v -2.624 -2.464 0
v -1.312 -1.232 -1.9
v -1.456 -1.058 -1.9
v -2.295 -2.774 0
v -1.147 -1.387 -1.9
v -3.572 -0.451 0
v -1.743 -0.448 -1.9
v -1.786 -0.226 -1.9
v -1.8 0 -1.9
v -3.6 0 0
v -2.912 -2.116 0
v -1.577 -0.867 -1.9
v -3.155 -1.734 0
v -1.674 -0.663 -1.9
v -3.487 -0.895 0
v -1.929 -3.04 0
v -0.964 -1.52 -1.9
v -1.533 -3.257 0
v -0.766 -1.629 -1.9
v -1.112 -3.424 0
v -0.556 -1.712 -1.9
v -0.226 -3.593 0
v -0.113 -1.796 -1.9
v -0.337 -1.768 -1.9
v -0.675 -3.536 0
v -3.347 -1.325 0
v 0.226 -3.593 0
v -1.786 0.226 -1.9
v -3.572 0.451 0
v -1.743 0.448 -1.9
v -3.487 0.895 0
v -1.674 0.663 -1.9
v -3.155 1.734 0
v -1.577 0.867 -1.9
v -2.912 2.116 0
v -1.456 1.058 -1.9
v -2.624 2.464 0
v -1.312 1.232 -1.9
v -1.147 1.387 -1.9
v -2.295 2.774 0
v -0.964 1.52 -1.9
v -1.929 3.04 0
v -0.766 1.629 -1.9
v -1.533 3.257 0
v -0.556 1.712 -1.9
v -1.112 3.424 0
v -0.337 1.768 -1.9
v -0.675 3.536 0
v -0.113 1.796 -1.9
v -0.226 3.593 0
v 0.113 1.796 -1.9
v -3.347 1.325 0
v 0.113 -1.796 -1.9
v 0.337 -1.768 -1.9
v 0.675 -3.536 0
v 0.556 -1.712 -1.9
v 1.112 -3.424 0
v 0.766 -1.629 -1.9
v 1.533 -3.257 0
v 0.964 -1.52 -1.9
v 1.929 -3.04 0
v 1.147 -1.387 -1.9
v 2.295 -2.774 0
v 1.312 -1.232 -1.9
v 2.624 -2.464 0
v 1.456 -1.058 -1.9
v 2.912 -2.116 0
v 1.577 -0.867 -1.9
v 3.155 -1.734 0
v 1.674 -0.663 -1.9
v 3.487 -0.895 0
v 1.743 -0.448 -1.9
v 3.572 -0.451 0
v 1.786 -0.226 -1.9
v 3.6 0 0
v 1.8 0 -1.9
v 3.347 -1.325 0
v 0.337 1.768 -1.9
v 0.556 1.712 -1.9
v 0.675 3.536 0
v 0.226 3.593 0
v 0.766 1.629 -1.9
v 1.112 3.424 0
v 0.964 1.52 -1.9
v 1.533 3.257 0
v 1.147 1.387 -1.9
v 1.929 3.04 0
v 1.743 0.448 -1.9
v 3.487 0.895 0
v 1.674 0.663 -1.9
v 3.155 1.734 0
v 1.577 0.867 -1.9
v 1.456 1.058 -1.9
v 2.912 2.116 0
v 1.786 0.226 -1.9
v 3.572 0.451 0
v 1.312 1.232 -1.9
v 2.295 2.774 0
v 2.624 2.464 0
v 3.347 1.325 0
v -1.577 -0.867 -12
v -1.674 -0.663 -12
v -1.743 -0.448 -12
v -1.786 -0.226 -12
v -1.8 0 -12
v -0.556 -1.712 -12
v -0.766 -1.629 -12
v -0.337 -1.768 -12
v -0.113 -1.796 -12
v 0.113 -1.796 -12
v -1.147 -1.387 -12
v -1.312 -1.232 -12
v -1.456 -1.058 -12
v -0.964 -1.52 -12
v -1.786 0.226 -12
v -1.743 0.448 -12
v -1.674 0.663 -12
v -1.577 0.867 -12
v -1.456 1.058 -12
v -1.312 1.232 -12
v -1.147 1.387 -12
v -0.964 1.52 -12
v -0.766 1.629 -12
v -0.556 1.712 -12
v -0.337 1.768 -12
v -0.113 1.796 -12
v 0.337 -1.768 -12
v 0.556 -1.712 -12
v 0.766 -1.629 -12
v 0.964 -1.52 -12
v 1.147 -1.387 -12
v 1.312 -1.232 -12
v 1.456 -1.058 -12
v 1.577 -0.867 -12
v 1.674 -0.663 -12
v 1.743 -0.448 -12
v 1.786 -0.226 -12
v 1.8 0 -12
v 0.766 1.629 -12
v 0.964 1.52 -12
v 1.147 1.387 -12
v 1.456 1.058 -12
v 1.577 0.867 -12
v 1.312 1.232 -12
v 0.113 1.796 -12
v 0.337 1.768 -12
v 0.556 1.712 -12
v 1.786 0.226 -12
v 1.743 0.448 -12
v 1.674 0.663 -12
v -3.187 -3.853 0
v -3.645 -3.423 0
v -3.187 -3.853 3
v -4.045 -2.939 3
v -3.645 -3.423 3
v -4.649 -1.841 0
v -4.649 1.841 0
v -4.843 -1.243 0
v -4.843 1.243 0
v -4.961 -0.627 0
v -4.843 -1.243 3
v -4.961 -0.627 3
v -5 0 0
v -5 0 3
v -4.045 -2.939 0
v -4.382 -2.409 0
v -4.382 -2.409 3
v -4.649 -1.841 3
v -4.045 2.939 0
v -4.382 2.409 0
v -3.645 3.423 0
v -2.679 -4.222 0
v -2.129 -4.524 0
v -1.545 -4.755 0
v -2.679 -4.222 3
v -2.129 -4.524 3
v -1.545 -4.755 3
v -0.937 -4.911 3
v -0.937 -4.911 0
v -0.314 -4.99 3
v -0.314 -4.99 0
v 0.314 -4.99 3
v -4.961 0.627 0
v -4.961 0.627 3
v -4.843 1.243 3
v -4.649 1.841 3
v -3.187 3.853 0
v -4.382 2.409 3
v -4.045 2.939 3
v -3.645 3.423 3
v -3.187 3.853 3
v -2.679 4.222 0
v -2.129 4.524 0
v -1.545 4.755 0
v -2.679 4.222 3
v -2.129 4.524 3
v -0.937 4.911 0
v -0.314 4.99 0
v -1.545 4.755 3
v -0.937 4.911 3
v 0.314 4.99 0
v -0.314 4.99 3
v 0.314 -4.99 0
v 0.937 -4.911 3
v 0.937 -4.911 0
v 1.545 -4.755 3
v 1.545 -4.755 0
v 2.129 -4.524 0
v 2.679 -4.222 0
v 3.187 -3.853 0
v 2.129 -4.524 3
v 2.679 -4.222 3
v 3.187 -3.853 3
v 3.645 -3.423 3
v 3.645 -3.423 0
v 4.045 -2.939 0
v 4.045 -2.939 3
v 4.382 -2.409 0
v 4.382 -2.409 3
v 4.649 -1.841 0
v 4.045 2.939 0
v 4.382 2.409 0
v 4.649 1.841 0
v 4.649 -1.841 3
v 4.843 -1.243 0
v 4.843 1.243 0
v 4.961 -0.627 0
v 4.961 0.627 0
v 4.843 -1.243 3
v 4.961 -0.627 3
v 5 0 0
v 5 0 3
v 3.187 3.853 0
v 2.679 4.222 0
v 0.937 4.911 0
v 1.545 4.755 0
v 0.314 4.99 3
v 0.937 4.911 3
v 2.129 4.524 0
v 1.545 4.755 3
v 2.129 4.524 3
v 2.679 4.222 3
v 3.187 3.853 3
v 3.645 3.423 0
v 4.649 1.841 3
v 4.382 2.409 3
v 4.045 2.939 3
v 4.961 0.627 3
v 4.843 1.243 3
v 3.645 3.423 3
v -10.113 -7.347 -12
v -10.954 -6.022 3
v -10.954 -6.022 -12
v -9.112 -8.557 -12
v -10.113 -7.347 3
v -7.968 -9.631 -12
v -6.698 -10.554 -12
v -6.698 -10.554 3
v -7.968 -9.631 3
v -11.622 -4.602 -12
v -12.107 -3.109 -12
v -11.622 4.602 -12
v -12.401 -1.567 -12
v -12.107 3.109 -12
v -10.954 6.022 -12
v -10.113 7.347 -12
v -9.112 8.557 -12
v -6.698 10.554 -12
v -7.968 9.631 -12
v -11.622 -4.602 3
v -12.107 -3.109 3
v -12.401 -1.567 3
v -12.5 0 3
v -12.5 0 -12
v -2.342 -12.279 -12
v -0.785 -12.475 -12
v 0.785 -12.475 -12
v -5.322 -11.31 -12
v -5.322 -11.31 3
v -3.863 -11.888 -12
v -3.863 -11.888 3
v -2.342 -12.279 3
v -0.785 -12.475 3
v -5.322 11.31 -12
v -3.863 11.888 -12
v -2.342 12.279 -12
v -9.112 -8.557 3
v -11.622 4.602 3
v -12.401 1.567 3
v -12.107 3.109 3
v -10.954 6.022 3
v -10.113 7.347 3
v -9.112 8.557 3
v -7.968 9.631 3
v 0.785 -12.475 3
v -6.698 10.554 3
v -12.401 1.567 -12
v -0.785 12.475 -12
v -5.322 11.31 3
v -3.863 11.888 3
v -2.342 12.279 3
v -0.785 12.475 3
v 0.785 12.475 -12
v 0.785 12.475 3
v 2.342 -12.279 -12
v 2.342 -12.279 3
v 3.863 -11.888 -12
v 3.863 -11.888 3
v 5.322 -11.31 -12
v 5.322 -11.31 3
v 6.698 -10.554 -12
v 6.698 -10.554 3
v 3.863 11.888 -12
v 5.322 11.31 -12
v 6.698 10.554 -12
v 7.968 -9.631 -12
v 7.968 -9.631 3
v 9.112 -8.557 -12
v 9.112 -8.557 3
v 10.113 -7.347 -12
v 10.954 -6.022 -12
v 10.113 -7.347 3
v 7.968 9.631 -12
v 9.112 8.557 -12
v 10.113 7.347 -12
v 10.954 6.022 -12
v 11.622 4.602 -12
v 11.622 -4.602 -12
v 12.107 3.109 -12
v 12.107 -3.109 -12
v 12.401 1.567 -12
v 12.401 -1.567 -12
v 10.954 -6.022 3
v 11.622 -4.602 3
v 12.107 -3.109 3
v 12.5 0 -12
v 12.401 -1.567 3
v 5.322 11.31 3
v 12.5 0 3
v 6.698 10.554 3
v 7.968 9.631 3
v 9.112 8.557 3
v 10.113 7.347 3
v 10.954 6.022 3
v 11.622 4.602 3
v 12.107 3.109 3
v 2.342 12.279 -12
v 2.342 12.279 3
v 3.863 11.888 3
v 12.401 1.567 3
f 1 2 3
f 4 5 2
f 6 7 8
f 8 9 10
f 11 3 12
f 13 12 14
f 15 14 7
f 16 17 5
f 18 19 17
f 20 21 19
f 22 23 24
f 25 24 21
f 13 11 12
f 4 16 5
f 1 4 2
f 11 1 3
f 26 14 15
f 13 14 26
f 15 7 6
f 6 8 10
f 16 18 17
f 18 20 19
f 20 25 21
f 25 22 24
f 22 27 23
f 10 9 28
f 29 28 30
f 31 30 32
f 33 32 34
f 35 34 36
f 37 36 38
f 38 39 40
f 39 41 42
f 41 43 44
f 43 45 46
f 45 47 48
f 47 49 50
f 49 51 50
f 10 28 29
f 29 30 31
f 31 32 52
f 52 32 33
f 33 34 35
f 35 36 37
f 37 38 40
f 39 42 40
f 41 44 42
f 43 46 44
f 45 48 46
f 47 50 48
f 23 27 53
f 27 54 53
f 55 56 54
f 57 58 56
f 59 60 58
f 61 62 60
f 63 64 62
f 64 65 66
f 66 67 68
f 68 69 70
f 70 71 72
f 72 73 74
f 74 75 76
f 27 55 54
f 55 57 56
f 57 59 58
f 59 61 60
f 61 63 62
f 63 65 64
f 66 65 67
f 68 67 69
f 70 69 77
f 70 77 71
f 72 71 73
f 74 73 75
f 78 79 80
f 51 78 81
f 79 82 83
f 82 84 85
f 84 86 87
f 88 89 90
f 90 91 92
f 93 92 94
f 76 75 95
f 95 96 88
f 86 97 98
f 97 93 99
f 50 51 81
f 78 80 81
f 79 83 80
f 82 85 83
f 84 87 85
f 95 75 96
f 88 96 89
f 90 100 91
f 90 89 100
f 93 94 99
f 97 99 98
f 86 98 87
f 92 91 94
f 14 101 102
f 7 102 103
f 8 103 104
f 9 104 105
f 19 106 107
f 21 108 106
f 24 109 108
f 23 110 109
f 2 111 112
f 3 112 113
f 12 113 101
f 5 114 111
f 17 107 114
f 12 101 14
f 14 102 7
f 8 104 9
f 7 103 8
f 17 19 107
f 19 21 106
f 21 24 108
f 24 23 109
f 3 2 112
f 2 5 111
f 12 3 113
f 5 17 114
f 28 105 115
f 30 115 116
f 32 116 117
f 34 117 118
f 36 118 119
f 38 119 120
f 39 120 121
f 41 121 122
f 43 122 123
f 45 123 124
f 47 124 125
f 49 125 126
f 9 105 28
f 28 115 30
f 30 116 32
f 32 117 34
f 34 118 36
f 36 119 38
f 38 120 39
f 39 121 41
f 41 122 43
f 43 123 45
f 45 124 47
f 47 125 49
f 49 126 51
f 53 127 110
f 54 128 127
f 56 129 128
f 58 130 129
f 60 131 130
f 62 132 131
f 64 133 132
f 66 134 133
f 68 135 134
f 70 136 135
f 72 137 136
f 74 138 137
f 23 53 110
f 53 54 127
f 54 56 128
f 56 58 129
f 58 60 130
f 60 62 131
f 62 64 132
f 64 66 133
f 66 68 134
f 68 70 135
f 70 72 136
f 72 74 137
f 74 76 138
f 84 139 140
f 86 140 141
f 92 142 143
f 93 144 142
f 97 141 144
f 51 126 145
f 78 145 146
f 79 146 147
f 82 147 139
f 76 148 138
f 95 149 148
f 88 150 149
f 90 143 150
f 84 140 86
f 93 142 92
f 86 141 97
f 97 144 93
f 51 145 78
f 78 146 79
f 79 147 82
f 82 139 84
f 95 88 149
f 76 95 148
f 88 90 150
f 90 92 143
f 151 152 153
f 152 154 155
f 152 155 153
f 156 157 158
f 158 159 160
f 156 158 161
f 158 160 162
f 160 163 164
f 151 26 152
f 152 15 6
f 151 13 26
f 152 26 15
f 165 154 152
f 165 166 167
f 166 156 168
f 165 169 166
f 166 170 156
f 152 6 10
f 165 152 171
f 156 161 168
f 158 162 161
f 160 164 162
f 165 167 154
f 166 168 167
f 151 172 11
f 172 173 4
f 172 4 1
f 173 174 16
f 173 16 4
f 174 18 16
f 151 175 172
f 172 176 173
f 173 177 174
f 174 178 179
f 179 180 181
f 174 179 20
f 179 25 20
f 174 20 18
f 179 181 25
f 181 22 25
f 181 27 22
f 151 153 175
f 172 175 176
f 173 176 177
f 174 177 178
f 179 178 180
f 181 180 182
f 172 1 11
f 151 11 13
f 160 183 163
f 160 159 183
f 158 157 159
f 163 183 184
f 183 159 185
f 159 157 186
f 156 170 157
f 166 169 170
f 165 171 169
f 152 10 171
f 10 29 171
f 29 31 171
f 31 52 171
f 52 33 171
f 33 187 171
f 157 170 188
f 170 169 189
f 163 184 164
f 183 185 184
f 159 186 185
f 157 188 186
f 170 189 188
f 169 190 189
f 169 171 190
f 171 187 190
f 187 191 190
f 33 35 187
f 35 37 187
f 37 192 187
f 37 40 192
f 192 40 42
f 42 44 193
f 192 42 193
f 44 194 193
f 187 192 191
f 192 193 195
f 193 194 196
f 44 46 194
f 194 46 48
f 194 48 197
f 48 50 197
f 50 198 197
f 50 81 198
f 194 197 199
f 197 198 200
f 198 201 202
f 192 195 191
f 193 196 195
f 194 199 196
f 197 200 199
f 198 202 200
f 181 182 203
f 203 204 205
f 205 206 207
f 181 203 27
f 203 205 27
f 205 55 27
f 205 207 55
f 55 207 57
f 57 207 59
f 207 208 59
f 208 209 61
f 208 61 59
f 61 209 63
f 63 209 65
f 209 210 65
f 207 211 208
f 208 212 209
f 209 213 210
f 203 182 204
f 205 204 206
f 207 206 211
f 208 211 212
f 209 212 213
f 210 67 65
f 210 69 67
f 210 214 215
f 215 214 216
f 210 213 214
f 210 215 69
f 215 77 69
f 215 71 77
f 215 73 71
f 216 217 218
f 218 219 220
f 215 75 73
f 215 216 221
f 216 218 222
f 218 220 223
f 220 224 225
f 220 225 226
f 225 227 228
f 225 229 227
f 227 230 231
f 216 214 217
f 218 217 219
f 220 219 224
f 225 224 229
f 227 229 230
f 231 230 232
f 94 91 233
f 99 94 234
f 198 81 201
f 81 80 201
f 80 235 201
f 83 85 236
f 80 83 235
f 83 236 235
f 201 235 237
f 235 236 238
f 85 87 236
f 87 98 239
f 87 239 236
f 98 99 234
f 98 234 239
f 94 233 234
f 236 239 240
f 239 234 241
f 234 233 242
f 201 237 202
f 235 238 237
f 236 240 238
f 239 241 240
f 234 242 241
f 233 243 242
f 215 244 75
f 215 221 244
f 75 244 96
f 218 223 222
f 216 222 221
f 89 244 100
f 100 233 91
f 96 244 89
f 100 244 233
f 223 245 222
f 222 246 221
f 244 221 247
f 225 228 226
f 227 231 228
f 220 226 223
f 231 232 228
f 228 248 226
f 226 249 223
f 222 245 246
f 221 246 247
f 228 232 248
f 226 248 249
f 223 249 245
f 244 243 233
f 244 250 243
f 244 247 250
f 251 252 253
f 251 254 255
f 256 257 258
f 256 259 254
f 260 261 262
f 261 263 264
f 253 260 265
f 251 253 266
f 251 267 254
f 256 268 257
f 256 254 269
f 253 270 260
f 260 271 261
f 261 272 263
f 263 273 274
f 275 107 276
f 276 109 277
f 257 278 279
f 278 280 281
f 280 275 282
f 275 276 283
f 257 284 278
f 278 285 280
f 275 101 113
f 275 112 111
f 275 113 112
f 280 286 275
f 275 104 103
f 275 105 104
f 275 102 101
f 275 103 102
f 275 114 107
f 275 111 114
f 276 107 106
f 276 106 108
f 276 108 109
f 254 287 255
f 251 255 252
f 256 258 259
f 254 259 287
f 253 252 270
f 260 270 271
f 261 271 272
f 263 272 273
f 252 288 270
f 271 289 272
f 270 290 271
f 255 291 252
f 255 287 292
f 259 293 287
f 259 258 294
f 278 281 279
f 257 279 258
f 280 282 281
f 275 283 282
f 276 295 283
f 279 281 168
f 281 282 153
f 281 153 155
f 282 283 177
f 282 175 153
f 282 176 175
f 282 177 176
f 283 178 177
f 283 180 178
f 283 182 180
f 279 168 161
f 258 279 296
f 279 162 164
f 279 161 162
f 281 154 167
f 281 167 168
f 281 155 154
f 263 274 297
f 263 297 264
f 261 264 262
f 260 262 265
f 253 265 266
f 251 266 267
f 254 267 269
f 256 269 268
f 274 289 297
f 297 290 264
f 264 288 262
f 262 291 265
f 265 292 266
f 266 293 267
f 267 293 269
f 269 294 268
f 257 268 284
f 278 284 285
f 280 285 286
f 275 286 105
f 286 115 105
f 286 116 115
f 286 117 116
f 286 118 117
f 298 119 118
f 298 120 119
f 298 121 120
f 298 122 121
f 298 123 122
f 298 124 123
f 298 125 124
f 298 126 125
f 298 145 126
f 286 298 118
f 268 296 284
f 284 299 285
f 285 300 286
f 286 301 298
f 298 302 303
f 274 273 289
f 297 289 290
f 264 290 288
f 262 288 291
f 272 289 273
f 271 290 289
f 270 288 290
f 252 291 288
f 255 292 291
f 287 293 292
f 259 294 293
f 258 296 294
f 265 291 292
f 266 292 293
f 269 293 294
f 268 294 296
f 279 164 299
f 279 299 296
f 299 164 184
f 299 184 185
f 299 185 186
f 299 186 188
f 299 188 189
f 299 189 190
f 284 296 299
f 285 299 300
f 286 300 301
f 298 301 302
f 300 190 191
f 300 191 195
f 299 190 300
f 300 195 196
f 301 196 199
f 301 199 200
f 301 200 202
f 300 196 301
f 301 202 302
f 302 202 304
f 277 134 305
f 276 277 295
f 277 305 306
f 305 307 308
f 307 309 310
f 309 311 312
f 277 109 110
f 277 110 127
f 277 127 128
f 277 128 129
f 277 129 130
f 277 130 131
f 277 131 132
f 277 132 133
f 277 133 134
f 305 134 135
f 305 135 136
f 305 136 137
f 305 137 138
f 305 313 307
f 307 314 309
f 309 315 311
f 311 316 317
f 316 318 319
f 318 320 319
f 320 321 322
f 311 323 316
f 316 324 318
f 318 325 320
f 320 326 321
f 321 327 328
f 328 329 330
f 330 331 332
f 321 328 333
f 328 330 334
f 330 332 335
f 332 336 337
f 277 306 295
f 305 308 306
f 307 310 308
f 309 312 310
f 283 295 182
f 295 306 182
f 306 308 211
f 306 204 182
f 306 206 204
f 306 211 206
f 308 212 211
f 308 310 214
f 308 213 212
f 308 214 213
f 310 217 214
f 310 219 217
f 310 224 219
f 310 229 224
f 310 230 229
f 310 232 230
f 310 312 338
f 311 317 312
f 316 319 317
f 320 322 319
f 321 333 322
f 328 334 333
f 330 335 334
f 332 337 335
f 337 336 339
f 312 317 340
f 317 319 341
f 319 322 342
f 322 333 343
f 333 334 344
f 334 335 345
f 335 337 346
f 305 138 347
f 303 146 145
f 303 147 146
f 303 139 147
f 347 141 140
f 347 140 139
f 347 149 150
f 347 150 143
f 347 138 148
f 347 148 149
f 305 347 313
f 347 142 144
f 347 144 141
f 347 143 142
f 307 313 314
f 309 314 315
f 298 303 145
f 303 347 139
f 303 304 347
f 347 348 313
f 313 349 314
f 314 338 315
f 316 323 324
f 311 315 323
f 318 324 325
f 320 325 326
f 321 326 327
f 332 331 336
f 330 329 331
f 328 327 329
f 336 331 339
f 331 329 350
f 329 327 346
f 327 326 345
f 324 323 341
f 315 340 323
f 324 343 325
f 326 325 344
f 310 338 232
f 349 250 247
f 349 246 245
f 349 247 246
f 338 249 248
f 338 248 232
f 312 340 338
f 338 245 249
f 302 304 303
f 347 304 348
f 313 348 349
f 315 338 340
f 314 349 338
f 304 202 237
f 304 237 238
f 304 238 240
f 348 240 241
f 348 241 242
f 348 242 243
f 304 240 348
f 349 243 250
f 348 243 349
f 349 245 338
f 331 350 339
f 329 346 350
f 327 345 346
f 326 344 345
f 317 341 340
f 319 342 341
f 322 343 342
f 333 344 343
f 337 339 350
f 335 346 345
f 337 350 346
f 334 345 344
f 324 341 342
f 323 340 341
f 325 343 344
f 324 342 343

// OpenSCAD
$fn = 50;


difference() {
	union() {
		translate(v = [0, 0, -12.0000000000]) {
			cylinder(h = 15, r = 12.5000000000);
		}
	}
	union() {
		translate(v = [0, 0, 0]) {
			rotate(a = [0, 0, 0]) {
				difference() {
					union() {
						translate(v = [0, 0, -15.0000000000]) {
							cylinder(h = 15, r = 1.5000000000);
						}
						translate(v = [0, 0, -1.9000000000]) {
							cylinder(h = 1.9000000000, r1 = 1.8000000000, r2 = 3.6000000000);
						}
						translate(v = [0, 0, -15.0000000000]) {
							cylinder(h = 15, r = 1.8000000000);
						}
						translate(v = [0, 0, -15.0000000000]) {
							cylinder(h = 15, r = 1.5000000000);
						}
					}
					union();
				}
			}
		}
		#cylinder(h = 3, r = 5.0000000000);
	}
}
